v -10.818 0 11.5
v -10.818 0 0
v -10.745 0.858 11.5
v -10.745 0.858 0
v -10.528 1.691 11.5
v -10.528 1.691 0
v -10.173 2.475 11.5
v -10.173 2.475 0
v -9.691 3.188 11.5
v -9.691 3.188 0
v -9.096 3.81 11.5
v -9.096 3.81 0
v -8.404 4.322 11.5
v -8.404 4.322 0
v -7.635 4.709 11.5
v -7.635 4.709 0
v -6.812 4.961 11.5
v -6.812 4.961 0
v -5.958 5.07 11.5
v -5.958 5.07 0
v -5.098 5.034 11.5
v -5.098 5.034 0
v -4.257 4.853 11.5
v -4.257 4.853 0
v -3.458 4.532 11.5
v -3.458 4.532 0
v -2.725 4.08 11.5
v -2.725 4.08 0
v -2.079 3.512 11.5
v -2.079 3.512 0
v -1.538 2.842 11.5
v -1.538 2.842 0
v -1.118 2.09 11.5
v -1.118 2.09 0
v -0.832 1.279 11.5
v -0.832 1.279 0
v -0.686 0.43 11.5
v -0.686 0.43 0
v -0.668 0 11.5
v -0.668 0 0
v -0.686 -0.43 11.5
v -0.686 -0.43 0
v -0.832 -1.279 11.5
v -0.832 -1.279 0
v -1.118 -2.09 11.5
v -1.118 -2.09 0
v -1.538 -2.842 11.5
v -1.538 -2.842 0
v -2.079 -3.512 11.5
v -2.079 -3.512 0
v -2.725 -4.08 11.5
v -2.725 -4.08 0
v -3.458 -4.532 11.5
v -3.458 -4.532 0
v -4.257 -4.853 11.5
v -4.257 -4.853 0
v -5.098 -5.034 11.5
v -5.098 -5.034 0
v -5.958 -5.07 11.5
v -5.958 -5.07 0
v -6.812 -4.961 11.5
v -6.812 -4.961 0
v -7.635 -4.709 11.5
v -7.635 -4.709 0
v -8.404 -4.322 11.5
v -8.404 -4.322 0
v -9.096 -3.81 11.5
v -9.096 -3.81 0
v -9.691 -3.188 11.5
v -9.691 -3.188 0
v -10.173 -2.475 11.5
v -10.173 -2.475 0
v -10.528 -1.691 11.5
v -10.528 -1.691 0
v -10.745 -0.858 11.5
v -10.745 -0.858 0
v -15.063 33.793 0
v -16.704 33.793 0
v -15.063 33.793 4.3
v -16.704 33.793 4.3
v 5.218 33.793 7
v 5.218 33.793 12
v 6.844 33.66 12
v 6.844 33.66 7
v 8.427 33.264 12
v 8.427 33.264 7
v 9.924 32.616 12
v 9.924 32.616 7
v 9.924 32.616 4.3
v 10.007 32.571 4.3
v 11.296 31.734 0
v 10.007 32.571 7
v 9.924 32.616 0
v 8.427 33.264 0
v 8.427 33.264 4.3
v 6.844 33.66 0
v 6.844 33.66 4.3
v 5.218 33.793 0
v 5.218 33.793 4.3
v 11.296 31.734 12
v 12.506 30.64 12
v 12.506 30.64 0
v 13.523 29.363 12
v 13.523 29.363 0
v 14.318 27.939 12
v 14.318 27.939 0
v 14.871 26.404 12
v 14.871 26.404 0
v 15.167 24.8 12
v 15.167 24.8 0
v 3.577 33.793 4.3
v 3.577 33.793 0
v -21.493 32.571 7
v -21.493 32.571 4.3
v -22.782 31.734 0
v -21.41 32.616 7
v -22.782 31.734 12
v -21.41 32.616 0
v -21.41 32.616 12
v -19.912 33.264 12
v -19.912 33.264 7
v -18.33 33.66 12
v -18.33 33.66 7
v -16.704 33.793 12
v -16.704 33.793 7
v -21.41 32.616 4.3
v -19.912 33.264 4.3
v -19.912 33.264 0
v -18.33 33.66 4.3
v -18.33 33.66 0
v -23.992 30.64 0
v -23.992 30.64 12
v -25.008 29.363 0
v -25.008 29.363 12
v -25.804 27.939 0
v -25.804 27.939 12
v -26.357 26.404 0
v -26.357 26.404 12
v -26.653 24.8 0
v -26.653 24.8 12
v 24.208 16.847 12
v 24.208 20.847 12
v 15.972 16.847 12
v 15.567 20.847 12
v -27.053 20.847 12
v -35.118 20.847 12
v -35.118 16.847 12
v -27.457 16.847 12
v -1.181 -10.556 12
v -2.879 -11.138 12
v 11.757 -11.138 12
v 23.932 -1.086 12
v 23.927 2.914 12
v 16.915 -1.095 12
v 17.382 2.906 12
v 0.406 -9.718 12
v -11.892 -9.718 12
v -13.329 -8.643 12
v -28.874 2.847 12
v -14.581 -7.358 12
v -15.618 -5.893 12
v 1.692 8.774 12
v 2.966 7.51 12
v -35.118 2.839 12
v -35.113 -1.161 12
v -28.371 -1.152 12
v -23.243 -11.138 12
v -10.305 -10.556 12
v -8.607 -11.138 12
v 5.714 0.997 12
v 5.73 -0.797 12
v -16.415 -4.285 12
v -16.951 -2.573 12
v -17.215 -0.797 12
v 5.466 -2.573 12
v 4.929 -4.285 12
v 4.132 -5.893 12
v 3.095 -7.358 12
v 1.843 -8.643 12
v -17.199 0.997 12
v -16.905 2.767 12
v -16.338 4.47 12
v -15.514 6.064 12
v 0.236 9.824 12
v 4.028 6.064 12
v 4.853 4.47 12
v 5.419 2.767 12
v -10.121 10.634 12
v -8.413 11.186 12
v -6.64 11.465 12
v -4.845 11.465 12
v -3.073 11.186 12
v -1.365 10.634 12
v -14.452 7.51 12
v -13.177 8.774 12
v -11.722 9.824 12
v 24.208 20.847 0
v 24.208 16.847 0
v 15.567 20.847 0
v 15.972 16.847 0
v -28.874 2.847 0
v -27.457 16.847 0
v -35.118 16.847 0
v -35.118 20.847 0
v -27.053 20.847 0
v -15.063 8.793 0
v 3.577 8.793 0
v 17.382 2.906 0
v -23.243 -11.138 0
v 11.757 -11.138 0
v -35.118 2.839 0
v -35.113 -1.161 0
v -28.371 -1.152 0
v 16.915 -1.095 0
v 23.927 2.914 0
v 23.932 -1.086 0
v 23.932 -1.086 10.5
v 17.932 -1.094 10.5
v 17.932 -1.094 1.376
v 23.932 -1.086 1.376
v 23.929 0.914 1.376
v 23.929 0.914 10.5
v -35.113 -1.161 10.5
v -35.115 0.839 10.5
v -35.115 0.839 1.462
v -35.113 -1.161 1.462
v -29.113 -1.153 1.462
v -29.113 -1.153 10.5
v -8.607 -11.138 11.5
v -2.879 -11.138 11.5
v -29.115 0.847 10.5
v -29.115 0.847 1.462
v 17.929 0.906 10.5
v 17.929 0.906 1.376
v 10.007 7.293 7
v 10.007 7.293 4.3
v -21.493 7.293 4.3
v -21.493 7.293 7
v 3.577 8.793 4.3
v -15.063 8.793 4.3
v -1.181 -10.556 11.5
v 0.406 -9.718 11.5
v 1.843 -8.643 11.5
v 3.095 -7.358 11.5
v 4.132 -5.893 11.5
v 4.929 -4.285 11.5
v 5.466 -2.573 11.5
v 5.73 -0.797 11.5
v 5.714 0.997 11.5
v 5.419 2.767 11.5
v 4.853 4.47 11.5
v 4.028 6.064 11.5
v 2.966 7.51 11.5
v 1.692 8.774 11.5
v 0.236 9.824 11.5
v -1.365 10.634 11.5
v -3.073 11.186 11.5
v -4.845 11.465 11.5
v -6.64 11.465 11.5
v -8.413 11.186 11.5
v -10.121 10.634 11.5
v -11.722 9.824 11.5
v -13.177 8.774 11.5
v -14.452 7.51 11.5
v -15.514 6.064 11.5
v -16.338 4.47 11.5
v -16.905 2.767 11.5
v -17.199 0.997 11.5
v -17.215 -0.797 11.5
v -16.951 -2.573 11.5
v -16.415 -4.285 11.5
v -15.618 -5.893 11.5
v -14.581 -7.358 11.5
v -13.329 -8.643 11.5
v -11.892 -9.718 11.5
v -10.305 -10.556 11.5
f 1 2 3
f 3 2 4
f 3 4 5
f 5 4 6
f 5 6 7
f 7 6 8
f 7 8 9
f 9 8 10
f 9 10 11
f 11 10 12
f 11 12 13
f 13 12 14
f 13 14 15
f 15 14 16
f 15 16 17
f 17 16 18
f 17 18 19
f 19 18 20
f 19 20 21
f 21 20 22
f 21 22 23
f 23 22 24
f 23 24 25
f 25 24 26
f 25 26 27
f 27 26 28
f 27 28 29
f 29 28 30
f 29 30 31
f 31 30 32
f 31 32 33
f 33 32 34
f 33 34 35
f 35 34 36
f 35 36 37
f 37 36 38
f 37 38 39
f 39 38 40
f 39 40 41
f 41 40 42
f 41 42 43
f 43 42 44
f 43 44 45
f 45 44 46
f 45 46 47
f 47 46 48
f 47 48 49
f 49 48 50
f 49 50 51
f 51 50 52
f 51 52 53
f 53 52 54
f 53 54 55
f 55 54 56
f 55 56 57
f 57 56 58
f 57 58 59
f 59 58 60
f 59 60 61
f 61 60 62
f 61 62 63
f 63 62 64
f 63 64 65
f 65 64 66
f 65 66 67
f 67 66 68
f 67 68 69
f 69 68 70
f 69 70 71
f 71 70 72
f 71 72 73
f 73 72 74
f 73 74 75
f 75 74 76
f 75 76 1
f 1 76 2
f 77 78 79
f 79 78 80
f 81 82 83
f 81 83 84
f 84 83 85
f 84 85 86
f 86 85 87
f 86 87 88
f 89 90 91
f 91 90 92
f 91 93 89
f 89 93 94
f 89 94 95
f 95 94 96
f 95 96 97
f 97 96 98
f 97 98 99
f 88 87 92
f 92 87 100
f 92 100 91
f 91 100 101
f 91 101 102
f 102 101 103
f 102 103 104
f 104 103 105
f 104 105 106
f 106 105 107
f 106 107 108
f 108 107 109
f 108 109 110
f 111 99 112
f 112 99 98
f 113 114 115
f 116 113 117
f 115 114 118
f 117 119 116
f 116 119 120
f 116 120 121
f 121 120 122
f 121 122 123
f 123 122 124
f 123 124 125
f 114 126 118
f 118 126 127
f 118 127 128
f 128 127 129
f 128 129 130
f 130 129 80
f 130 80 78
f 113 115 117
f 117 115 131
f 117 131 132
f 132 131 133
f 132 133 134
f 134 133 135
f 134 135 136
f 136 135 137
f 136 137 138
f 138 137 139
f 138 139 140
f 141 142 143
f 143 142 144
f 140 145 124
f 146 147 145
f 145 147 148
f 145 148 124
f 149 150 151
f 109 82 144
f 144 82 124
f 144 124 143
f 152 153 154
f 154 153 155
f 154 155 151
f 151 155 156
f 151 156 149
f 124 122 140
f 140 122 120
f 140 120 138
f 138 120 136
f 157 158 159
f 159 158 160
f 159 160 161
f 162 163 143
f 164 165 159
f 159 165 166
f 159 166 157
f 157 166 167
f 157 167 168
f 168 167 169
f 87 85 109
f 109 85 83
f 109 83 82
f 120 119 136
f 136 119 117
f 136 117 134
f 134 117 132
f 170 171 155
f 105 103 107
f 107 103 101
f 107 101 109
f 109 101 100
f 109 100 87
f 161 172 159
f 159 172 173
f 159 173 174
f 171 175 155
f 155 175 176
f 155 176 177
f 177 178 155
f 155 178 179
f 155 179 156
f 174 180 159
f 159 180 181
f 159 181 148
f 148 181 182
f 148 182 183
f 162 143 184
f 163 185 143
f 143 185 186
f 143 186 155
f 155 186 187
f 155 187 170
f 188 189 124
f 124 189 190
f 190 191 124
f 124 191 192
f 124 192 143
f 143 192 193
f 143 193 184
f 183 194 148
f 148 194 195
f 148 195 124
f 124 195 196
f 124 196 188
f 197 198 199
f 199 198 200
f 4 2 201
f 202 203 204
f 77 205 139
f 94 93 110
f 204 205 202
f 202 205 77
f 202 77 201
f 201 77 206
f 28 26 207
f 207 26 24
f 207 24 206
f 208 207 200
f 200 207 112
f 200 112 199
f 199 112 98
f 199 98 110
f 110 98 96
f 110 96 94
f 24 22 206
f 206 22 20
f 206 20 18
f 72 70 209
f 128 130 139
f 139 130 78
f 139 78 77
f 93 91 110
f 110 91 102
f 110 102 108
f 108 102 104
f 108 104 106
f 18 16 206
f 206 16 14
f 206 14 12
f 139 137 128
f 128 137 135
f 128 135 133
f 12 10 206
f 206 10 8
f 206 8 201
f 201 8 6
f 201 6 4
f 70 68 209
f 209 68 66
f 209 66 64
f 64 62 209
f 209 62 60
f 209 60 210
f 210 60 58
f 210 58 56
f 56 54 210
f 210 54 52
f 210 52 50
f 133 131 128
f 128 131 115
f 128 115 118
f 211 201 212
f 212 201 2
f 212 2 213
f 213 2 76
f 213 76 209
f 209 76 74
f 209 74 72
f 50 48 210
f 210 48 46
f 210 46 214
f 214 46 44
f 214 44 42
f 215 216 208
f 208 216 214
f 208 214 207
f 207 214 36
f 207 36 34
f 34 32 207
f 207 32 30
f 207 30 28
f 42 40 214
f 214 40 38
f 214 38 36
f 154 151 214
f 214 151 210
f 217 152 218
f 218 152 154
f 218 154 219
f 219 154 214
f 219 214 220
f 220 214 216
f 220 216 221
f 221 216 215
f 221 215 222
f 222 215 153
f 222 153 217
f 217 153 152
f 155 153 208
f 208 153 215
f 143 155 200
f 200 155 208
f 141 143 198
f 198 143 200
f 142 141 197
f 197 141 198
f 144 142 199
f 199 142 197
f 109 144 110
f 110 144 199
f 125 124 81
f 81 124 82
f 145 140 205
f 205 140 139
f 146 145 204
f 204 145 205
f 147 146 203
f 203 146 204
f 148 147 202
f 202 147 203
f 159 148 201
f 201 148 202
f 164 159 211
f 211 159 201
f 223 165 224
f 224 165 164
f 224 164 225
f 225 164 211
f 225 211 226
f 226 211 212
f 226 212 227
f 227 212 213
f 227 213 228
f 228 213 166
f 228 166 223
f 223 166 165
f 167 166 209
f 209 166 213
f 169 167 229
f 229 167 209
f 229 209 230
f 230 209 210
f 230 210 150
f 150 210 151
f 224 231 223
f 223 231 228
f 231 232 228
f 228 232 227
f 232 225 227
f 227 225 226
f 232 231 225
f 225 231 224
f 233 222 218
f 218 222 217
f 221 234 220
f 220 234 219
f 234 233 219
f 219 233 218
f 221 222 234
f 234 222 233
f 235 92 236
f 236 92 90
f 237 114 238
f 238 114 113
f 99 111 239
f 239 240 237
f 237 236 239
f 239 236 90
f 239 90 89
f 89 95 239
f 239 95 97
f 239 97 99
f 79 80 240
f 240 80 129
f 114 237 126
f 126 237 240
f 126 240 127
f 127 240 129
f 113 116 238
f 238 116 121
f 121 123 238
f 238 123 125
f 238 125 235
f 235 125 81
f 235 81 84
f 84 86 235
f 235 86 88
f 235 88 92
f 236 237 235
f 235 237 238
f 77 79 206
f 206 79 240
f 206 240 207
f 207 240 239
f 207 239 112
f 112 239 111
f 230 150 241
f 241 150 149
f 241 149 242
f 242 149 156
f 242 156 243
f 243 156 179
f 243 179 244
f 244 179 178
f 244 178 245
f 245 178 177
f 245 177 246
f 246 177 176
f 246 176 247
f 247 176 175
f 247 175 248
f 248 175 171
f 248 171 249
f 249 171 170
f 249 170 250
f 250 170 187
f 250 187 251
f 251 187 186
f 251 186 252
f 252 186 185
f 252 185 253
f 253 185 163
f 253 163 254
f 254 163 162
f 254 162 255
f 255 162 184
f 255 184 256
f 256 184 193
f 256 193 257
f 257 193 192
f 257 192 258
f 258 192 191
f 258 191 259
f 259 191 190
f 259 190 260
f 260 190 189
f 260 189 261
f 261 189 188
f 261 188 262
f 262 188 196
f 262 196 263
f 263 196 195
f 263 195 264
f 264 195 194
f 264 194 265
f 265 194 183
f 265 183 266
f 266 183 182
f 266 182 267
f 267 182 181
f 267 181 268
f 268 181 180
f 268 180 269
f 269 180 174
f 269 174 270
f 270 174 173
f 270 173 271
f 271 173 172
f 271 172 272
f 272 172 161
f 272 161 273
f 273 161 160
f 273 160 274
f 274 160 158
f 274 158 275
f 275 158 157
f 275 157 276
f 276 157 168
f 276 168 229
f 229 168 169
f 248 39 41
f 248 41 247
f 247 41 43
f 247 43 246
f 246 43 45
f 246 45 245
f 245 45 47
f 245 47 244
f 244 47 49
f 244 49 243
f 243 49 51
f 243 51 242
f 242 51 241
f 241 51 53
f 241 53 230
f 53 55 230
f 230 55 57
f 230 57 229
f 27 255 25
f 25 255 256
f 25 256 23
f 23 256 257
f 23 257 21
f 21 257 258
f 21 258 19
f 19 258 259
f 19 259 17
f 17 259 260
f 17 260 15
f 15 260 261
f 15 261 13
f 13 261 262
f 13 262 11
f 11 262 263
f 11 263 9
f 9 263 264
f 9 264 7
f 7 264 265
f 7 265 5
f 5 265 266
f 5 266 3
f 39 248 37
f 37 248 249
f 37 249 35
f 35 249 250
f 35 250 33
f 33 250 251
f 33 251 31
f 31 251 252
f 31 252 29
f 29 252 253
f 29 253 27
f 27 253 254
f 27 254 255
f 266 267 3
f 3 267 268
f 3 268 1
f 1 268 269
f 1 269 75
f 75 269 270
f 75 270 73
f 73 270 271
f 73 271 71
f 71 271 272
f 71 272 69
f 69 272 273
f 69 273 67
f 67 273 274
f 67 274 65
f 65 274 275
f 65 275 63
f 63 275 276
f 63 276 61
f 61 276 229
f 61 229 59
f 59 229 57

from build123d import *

# Parameters (mm, degrees)
SKETCH2_R           = 5.075
BOSS_EXTRUDE1_DEPTH = 12
CUT_EXTRUDE1_DEPTH  = 2
SKETCH4_W           = 31.5
SKETCH4_H           = 26.5
CUT_EXTRUDE2_DEPTH  = 2.7
CUT_EXTRUDE3_REACH  = 14
SKETCH5_W           = 18.640557444
SKETCH5_H           = 25
SKETCH6_R           = 11.5
CUT_EXTRUDE4_DEPTH  = 0.5


with BuildPart() as part:
    # Sketch2 → Boss-Extrude1 (new body)
    with BuildSketch(Plane.XY):
        with BuildLine():
            Line((-26.652708458, 24.799544054), (-27.052594325, 20.847218157))
            Line((-27.052594325, 20.847218157), (-35.117996865, 20.847218157))
            Line((-35.117996865, 20.847218157), (-35.117996865, 16.847218157))
            Line((-35.117996865, 16.847218157), (-27.457303732, 16.847218157))
            Line((-27.457303732, 16.847218157), (-28.873786654, 2.847218157))
            Line((-28.873786654, 2.847218157), (-35.117996865, 2.839337807))
            Line((-35.117996865, 2.839337807), (-35.112948764, -1.160662193))
            Line((-35.112948764, -1.160662193), (-28.37093921, -1.152153607))
            Line((-28.37093921, -1.152153607), (-23.24278353, -11.137592085))
            Line((-23.24278353, -11.137592085), (11.75721647, -11.137592085))
            Line((11.75721647, -11.137592085), (16.91451101, -1.09500223))
            Line((16.91451101, -1.09500223), (23.93161739, -1.086146466))
            Line((23.93161739, -1.086146466), (23.92656929, 2.913853534))
            Line((23.92656929, 2.913853534), (17.382313229, 2.905594519))
            Line((17.382313229, 2.905594519), (15.971736672, 16.847218157))
            Line((15.971736672, 16.847218157), (24.207665477, 16.847218157))
            Line((24.207665477, 16.847218157), (24.207665477, 20.847218157))
            Line((24.207665477, 20.847218157), (15.567027266, 20.847218157))
            Line((15.567027266, 20.847218157), (15.167141399, 24.799544054))
            ThreePointArc((15.167141399, 24.799544054), (11.923667067, 31.21134436), (5.217936029, 33.792909804))
            Line((5.217936029, 33.792909804), (-16.703503089, 33.792909804))
            ThreePointArc((-16.703503089, 33.792909804), (-23.409234126, 31.21134436), (-26.652708458, 24.799544054))
        make_face()
        with Locations((-5.74278353, 0)):
            Circle(SKETCH2_R, mode=Mode.SUBTRACT)
    extrude(amount=BOSS_EXTRUDE1_DEPTH)

    # Sketch3 → Cut-Extrude1 (cut)
    with BuildSketch(Plane(origin=(0.001408858, -1.116346991, 0), x_dir=(0.999999204, 0.001262024, 0), z_dir=(0.001262024, -0.999999204, 0))):
        Polygon((-35.114385586, 10.5), (-29.114385586, 10.5), (-29.114385586, 8.5), (-29.114385586, 3.523848556), (-29.114385586, 1.461924081), (-35.114385586, 1.461924081), (-35.114385586, 3.523848556), (-35.114385586, 8.5), align=None)
        Polygon((17.930227589, 10.5), (23.930227589, 10.5), (23.930227589, 8.5), (23.930227589, 3.438075525), (23.930227589, 1.376151049), (17.930227589, 1.376151049), (17.930227589, 3.438075525), (17.930227589, 8.5), align=None)
    extrude(amount=-CUT_EXTRUDE1_DEPTH, mode=Mode.SUBTRACT)

    # Sketch4 → Cut-Extrude2 (cut)
    with BuildSketch(Plane.XY.offset(7)):
        with Locations((-5.74278353, 20.542909804)):
            Rectangle(SKETCH4_W, SKETCH4_H)
    extrude(amount=-CUT_EXTRUDE2_DEPTH, mode=Mode.SUBTRACT)

    # Sketch5 → Cut-Extrude3 (cut, up to next)
    with BuildSketch(Plane(origin=(0, 0, 0), x_dir=(-1, 0, 0), z_dir=(0, 0, -1)), mode=Mode.PRIVATE) as cut_extrude3_sk1:
        with Locations((5.74278353, 21.292909804)):
            Rectangle(SKETCH5_W, SKETCH5_H)
    cut_extrude3_tool1 = extrude(cut_extrude3_sk1.sketch, amount=-CUT_EXTRUDE3_REACH, mode=Mode.PRIVATE) & part.part
    add(cut_extrude3_tool1.solids().sort_by_distance((-5.742784, 21.29291, 0))[0], mode=Mode.SUBTRACT)

    # Sketch6 → Cut-Extrude4 (cut)
    with BuildSketch(Plane.XY.offset(12)):
        with Locations((-5.74278353, 0)):
            Circle(SKETCH6_R)
    extrude(amount=-CUT_EXTRUDE4_DEPTH, mode=Mode.SUBTRACT)


solid = part.part
